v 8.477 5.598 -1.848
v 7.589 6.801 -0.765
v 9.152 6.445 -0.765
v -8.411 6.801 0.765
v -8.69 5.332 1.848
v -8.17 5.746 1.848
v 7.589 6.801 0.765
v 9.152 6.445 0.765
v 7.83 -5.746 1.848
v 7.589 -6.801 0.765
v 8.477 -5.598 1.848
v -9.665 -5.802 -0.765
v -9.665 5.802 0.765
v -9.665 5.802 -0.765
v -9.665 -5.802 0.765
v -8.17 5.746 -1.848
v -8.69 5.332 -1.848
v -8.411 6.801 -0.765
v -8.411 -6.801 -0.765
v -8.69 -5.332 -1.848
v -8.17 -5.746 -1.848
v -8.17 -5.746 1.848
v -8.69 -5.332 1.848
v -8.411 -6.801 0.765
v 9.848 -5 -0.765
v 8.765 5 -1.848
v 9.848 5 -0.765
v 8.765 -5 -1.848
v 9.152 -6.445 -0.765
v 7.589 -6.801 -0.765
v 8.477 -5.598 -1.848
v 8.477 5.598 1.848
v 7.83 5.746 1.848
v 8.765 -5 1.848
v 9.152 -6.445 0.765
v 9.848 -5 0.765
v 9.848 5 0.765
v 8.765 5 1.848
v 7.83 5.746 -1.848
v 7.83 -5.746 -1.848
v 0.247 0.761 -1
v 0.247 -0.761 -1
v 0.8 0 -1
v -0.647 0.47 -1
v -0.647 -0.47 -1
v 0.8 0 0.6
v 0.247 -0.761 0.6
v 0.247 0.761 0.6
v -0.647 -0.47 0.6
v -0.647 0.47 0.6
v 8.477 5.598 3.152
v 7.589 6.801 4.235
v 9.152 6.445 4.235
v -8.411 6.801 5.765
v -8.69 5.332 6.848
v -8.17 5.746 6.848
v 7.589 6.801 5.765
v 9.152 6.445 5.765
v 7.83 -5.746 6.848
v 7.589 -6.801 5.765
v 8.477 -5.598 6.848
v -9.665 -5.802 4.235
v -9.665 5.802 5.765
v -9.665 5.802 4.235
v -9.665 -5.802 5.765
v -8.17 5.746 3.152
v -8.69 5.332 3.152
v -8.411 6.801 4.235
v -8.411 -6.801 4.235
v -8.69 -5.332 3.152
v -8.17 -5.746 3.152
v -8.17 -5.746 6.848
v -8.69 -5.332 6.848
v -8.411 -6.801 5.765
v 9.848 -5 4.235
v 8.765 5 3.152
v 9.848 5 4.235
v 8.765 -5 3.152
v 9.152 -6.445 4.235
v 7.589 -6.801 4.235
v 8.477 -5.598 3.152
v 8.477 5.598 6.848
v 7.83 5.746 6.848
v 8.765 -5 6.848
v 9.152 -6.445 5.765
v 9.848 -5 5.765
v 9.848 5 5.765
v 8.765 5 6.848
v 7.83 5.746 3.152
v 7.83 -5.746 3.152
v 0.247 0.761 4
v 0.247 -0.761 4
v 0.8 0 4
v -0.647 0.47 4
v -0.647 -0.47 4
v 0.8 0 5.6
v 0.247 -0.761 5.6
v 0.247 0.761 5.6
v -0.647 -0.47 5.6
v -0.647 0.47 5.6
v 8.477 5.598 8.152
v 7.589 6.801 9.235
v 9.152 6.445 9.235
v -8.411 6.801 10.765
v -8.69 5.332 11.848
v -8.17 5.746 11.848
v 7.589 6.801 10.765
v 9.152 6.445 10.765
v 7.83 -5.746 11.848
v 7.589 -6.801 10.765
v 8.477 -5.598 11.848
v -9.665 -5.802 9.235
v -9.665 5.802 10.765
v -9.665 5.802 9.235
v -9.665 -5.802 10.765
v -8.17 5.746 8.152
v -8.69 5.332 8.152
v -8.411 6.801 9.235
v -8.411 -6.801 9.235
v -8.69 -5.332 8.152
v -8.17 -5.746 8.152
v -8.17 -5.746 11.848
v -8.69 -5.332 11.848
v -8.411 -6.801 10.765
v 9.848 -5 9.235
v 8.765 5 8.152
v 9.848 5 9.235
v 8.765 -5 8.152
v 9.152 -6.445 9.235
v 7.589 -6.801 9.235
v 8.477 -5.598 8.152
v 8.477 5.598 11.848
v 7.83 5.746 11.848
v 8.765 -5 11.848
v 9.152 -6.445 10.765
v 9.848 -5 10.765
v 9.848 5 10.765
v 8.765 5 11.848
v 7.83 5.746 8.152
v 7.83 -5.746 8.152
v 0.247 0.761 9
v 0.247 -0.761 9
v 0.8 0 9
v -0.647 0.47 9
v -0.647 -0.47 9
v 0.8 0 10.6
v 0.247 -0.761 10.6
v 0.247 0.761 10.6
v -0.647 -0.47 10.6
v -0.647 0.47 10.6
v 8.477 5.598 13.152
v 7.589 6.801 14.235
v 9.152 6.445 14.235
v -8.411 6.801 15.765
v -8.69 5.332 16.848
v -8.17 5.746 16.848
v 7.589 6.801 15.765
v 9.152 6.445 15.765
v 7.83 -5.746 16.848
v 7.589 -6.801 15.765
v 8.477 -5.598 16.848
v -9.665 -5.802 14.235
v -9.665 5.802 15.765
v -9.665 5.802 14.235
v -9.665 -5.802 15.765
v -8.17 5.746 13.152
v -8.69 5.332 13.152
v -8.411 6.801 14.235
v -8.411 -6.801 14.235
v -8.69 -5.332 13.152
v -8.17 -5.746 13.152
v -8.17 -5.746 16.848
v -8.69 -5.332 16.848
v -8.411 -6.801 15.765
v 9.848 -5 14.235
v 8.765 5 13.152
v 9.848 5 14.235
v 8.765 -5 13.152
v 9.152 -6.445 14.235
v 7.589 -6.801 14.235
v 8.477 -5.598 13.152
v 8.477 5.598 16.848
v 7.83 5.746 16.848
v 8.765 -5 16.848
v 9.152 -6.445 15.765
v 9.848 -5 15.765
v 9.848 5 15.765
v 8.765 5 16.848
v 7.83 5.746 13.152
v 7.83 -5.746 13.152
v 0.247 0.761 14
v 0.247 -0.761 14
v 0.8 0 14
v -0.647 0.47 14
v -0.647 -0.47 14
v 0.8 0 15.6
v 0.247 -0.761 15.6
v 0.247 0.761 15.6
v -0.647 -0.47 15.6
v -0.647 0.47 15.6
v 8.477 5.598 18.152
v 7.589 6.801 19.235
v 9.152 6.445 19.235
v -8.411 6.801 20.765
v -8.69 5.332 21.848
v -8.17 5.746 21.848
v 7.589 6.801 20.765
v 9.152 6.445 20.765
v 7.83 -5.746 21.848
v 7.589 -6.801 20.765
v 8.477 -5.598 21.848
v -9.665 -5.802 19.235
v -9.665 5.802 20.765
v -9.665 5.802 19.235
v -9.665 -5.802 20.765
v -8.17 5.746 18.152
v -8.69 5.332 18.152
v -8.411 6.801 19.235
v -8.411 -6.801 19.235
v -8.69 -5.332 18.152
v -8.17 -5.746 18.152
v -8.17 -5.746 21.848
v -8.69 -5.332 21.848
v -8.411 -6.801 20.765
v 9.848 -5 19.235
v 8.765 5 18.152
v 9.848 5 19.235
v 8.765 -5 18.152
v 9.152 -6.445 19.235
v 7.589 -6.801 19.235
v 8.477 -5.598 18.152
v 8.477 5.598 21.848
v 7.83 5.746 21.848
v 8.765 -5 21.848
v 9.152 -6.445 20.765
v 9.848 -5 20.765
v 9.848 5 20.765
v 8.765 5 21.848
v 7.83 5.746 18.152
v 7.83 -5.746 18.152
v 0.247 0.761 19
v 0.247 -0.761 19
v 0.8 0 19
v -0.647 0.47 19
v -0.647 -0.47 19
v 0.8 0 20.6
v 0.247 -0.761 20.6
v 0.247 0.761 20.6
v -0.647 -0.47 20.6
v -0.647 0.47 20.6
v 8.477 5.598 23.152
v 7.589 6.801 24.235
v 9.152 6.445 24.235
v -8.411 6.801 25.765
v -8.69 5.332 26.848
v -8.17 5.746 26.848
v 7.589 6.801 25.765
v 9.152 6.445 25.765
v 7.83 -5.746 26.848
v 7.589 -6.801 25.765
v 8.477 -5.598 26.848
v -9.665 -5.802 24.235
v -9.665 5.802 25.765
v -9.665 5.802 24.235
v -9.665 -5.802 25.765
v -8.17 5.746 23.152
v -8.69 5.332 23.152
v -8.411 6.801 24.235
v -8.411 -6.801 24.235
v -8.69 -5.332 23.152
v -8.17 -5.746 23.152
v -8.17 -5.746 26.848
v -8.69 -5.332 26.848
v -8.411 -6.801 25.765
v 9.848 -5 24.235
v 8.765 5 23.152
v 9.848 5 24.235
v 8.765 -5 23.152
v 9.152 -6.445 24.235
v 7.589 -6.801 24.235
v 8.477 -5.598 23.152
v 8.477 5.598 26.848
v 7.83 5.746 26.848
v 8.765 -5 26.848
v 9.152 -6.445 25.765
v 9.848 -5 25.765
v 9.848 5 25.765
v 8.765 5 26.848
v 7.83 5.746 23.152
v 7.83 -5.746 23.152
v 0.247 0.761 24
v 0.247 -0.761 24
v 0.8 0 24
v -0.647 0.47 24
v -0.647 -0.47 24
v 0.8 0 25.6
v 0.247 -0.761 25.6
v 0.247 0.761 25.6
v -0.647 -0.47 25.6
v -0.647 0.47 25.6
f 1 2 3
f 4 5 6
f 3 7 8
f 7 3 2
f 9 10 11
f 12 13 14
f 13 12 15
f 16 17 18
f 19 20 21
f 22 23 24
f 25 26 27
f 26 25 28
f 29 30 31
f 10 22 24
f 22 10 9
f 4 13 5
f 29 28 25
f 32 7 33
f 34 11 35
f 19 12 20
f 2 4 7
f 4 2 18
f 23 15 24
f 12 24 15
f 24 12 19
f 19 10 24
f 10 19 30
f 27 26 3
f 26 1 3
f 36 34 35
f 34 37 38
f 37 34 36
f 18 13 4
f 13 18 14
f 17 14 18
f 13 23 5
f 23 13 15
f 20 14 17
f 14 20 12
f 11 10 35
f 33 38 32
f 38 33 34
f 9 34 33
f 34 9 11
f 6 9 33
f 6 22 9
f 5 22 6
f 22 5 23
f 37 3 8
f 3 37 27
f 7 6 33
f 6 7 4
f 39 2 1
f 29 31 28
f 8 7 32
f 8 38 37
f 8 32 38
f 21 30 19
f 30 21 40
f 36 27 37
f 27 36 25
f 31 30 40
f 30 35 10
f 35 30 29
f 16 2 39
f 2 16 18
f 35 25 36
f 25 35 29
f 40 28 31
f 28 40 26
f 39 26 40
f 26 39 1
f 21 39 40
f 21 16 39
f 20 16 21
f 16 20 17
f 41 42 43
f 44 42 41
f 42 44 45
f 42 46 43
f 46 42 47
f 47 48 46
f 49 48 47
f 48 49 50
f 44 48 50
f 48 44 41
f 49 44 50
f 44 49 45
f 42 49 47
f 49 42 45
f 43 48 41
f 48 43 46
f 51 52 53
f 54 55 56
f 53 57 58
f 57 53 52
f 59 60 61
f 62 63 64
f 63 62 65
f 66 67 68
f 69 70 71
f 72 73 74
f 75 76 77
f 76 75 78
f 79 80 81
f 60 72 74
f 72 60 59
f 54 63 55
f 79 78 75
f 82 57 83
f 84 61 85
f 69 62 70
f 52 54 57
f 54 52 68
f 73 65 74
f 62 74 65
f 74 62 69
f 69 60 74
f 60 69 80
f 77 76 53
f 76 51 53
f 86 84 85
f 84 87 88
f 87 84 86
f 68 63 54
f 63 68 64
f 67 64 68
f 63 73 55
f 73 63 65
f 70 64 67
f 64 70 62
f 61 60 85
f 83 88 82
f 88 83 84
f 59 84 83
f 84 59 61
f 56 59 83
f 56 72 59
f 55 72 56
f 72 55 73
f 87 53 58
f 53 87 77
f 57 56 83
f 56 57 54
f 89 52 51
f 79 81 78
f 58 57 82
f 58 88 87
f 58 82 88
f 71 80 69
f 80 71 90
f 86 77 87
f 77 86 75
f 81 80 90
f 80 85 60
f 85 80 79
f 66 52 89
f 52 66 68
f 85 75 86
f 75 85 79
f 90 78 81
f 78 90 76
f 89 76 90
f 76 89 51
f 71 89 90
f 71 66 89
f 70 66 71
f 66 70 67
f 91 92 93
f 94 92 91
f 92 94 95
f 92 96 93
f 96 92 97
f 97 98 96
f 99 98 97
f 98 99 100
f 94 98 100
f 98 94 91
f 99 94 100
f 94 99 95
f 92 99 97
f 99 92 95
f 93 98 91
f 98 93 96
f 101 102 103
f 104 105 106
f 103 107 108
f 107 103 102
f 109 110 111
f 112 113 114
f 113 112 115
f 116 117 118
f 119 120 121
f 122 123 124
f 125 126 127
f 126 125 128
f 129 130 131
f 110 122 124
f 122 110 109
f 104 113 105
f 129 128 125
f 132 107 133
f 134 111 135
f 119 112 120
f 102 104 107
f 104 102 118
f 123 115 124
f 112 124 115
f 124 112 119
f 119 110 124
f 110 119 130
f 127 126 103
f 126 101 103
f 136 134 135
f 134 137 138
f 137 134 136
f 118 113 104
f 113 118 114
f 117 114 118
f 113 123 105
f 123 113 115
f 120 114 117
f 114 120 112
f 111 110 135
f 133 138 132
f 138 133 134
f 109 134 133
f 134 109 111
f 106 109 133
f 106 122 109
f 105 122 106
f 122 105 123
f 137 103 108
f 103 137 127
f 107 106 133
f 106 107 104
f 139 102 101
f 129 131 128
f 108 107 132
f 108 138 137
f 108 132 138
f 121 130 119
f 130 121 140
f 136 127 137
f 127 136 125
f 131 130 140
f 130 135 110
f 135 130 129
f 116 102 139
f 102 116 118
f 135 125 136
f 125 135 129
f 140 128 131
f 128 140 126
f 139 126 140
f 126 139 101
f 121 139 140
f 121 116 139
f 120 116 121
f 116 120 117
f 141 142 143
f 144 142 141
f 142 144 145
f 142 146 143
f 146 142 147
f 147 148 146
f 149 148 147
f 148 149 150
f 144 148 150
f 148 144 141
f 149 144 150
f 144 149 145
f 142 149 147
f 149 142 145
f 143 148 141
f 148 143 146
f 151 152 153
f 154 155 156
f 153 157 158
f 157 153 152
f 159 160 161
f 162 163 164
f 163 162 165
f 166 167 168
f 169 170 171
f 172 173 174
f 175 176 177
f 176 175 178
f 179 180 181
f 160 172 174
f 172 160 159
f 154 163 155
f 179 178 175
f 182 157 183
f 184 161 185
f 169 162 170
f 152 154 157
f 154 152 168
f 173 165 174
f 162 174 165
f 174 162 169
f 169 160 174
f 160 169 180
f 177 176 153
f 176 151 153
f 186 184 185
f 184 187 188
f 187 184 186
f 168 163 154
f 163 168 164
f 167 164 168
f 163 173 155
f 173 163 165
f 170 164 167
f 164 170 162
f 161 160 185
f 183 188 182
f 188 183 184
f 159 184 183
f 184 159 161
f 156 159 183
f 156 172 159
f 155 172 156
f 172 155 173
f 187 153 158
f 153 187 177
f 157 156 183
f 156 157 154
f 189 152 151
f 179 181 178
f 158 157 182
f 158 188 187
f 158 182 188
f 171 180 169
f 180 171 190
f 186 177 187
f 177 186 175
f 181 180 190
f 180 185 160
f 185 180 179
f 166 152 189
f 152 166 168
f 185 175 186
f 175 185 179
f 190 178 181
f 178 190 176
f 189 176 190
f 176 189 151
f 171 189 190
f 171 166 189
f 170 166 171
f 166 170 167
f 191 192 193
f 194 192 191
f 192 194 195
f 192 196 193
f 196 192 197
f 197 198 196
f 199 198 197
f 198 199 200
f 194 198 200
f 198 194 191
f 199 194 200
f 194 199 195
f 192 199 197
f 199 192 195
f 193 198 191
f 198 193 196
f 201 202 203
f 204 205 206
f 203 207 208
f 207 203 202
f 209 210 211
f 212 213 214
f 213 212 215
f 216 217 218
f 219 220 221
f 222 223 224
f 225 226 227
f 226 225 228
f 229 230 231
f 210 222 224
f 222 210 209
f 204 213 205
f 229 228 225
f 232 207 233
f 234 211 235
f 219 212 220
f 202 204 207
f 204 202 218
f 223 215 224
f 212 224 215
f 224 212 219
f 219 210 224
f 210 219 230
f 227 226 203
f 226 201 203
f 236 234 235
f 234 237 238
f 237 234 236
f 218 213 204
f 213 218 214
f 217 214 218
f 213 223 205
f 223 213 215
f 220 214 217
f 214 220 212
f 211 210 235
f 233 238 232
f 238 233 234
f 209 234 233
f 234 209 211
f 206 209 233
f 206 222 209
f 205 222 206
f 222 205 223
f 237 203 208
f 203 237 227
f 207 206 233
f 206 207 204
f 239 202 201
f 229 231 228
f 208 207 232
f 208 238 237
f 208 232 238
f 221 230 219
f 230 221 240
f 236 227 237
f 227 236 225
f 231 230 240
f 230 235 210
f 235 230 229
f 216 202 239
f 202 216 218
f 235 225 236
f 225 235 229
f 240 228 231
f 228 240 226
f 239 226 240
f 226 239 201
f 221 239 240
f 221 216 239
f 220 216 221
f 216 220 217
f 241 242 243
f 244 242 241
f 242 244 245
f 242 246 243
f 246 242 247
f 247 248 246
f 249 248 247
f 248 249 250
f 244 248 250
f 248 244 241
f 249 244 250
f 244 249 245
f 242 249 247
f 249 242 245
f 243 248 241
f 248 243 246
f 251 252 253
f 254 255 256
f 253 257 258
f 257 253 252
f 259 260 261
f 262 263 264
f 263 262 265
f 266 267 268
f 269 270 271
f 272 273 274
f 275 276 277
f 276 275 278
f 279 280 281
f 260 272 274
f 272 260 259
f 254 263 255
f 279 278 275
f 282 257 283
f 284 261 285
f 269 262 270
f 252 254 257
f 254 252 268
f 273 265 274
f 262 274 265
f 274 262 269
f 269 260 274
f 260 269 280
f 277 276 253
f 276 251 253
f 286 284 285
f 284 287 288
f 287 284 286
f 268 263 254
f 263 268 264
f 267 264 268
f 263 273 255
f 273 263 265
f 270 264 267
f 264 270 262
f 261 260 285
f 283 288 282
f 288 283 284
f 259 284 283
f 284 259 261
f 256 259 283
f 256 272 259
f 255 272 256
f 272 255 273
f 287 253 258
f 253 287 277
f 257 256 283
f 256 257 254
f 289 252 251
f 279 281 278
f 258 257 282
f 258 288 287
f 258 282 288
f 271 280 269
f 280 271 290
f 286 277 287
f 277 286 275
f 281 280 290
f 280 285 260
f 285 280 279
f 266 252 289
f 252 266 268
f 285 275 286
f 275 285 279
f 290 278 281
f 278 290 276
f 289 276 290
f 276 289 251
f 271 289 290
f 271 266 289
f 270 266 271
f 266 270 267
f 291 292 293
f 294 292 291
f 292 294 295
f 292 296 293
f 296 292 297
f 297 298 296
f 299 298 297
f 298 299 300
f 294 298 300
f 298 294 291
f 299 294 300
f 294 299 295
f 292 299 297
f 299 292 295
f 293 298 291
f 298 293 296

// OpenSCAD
module rectangular_loop(length, width, thickness, corner_radius) {
    difference() {
        // Outer loop
        hull() {
            translate([-length/2 + corner_radius, -width/2, 0]) sphere(corner_radius);
            translate([length/2 - corner_radius, -width/2, 0]) sphere(corner_radius);
            translate([-length/2 + corner_radius, width/2, 0]) sphere(corner_radius);
            translate([length/2 - corner_radius, width/2, 0]) sphere(corner_radius);
        }
        
        // Inner loop cutout (to create thickness)
        translate([0, 0, -1]) difference() {
            scale(0.8)
            linear_extrude(thickness * 2) { 
                 circle(radius=thickness);}
        } {
          
              
            }
    }
}

module flexible_coupling() {
    layer_spacing = 5;
    for (i = [0:5]) {
        translate([0, 0, i * layer_spacing]) {
            rectangular_loop(length = 20, width = 10, thickness = 1, corner_radius = 2);
        }
    }
}

// Render the model
flexible_coupling();
